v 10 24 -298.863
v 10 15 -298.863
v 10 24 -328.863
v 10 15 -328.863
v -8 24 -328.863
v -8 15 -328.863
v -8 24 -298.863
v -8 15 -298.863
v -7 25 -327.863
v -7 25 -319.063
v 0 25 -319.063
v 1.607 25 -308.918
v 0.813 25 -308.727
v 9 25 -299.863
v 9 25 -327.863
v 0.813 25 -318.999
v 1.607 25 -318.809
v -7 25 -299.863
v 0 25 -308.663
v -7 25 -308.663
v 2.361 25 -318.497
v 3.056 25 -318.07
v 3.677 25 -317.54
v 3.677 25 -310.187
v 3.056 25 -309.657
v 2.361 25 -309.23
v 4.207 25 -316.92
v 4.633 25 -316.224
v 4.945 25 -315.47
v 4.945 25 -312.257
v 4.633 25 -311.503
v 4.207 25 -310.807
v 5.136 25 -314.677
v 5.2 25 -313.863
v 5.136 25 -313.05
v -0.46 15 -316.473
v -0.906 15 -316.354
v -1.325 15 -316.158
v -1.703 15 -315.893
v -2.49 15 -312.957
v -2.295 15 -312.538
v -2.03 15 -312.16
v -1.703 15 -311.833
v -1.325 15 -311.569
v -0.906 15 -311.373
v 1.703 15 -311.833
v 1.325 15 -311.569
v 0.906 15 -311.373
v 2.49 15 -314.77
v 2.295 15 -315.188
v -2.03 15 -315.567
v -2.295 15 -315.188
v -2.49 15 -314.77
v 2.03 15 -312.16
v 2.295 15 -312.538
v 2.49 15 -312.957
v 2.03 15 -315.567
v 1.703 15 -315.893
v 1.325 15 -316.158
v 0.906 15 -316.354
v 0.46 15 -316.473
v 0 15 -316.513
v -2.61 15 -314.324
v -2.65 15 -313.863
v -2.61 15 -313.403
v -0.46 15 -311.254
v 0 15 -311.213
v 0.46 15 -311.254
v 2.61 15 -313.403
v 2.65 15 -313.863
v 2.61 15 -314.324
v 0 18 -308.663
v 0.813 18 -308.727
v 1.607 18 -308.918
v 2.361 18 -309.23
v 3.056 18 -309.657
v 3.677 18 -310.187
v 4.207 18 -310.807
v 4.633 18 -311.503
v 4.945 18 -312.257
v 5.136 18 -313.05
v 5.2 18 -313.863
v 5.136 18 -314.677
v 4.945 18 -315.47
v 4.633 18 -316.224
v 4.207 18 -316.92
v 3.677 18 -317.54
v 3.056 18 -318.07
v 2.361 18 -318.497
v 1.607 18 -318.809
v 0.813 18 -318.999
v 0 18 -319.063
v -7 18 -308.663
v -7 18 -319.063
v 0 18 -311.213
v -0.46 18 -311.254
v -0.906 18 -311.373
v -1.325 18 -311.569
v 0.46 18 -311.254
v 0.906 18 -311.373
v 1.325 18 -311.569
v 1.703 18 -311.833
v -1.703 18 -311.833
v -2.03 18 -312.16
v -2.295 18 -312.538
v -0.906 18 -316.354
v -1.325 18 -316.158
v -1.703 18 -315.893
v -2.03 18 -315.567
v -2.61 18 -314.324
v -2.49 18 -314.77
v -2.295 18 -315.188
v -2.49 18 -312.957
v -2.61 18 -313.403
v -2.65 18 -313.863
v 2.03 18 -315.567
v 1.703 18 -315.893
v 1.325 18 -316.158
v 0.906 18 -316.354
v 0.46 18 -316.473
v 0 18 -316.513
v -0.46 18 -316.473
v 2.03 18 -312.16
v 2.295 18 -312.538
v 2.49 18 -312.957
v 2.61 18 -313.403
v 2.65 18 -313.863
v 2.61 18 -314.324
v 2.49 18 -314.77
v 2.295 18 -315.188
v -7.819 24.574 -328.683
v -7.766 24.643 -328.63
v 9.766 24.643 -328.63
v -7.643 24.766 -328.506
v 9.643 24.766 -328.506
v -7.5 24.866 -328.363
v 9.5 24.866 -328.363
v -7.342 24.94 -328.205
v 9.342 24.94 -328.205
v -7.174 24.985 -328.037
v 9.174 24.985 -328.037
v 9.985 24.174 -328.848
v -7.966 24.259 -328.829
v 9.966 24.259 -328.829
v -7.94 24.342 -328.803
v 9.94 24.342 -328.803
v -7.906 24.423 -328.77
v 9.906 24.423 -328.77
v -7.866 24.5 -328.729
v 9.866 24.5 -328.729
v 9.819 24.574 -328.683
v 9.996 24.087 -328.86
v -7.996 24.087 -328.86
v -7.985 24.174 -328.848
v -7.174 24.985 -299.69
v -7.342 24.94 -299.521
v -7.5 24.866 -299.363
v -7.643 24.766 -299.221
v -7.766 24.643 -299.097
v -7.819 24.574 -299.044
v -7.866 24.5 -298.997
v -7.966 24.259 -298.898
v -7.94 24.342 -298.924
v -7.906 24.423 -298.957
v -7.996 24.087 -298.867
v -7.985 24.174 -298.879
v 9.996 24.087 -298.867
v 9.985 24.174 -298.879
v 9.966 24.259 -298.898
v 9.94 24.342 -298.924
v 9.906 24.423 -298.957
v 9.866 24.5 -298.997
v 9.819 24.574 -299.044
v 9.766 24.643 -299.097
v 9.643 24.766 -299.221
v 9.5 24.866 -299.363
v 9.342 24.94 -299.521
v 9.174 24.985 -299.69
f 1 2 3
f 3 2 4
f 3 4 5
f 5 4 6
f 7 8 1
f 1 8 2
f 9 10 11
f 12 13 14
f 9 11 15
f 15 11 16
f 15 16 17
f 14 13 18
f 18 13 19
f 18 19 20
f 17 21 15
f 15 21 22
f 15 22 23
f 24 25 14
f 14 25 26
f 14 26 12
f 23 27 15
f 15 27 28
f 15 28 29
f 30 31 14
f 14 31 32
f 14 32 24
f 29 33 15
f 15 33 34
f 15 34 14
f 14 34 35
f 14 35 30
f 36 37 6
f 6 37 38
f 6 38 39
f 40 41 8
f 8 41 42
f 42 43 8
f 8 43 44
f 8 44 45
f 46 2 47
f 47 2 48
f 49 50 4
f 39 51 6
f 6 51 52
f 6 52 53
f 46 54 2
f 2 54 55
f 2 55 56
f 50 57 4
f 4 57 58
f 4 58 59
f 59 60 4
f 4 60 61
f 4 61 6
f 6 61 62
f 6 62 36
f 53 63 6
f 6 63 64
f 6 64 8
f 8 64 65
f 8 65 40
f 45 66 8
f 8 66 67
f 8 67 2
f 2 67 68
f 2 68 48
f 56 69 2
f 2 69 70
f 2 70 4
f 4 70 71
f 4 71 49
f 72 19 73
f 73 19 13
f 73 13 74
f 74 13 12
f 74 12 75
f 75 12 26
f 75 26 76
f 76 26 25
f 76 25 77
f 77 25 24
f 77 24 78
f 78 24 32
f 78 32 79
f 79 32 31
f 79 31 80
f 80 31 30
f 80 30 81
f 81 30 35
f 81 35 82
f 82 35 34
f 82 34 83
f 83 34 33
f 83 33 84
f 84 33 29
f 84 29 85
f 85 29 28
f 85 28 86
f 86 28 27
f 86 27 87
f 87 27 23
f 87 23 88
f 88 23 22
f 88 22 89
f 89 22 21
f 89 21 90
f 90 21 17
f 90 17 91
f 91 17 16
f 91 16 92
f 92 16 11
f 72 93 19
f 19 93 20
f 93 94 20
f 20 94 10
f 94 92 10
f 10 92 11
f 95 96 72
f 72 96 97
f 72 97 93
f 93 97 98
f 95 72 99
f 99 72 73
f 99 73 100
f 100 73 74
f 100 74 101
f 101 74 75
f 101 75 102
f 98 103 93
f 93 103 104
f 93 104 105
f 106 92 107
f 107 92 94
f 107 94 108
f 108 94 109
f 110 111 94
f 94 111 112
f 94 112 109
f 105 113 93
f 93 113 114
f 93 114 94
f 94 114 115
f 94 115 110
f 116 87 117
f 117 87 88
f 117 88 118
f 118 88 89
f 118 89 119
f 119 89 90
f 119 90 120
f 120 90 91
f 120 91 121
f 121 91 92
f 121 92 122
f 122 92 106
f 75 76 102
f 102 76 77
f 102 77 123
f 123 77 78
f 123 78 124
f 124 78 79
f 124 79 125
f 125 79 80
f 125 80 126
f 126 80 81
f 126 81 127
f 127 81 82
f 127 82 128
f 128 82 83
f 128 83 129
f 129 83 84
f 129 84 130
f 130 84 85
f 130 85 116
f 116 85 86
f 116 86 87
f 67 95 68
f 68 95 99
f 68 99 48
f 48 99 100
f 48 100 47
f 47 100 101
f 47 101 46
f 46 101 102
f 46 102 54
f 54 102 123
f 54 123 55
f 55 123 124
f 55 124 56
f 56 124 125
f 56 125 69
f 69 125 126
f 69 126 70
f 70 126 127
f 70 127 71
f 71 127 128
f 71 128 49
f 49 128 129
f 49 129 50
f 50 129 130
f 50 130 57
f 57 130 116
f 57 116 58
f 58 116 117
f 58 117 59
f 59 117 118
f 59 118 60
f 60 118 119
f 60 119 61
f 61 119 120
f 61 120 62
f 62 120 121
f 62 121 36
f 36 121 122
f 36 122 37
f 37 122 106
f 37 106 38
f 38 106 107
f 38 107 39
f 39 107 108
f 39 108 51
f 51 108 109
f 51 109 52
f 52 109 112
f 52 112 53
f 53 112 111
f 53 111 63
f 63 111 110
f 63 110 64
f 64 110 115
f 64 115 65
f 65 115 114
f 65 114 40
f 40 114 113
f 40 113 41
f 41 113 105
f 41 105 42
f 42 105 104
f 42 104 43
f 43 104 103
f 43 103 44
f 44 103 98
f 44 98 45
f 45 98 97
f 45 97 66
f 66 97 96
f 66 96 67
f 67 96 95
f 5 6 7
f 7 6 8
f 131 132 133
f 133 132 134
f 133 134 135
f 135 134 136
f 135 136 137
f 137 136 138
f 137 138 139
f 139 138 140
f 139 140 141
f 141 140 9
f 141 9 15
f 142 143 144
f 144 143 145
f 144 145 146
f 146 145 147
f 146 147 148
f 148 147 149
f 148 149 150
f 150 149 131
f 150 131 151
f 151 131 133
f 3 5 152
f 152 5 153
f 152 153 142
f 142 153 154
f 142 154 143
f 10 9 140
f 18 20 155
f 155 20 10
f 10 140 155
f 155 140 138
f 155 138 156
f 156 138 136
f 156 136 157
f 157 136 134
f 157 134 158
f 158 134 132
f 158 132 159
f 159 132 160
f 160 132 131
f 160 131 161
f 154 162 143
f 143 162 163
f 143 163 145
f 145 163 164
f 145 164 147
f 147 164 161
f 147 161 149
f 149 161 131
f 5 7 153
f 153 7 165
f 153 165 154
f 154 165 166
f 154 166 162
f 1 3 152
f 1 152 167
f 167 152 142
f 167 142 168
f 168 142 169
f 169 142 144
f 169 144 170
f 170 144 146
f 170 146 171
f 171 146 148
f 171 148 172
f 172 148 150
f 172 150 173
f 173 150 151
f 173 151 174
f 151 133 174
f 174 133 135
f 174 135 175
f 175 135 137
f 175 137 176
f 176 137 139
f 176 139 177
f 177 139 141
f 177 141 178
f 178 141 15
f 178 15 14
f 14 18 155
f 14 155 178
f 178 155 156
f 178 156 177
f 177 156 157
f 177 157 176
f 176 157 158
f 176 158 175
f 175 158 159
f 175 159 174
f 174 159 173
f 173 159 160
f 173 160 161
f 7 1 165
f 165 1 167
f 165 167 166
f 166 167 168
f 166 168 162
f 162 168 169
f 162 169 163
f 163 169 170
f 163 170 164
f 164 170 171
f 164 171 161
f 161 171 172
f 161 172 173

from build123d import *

# Parameters (mm, degrees)
SKETCH2_W          = 20
SKETCH2_H          = 30
EXTRUDE1_DEPTH     = 10
CUT_EXTRUDE1_DEPTH = 7
SKETCH4_R          = 2.65
CUT_EXTRUDE2_DEPTH = 17
SKETCH7_W          = 2
SKETCH7_H          = 10
EXTRUDE2_DEPTH     = 30
FILLET1_R          = 1


with BuildPart() as part:
    # Sketch2 → Extrude1 (new body)
    with BuildSketch(Plane(origin=(0, 15, 0), x_dir=(1, 0, 0), z_dir=(0, 1, 0))):
        with Locations((0, 313.863465254)):
            Rectangle(SKETCH2_W, SKETCH2_H)
    extrude(amount=EXTRUDE1_DEPTH)

    # Sketch3 → Cut-Extrude1 (cut)
    with BuildSketch(Plane(origin=(0, 25, 0), x_dir=(1, 0, 0), z_dir=(0, 1, 0))):
        with BuildLine():
            Line((0, 319.063465254), (-7, 319.063465254))
            Line((-7, 319.063465254), (-7, 308.663465254))
            Line((-7, 308.663465254), (0, 308.663465254))
            ThreePointArc((0, 308.663465254), (5.2, 313.863465254), (0, 319.063465254))
        make_face()
    extrude(amount=-CUT_EXTRUDE1_DEPTH, mode=Mode.SUBTRACT)

    # Sketch4 → Cut-Extrude2 (cut)
    with BuildSketch(Plane(origin=(0, 18, 0), x_dir=(1, 0, 0), z_dir=(0, 1, 0))):
        with Locations(Location((0, 313.863465254, 0), (0, 0, 270))):
            Circle(SKETCH4_R)
    extrude(amount=-CUT_EXTRUDE2_DEPTH, mode=Mode.SUBTRACT)

    # Sketch7 → Extrude2 (cut)
    with BuildSketch(Plane.XY.offset(-298.863465254)):
        with Locations((-9, 20)):
            Rectangle(SKETCH7_W, SKETCH7_H)
    extrude(amount=-EXTRUDE2_DEPTH, mode=Mode.SUBTRACT)

    # Fillet1
    fillet1_edges = [part.edges().sort_by_distance(p)[0] for p in [
        (1, 25, -298.863465254),
        (-8, 25, -313.863465254),
        (10, 25, -313.863465254),
        (1, 25, -328.863465254),
    ]]
    fillet(fillet1_edges, radius=FILLET1_R - 0.0001)  # a hair under: the kernel refuses the full size


solid = part.part
